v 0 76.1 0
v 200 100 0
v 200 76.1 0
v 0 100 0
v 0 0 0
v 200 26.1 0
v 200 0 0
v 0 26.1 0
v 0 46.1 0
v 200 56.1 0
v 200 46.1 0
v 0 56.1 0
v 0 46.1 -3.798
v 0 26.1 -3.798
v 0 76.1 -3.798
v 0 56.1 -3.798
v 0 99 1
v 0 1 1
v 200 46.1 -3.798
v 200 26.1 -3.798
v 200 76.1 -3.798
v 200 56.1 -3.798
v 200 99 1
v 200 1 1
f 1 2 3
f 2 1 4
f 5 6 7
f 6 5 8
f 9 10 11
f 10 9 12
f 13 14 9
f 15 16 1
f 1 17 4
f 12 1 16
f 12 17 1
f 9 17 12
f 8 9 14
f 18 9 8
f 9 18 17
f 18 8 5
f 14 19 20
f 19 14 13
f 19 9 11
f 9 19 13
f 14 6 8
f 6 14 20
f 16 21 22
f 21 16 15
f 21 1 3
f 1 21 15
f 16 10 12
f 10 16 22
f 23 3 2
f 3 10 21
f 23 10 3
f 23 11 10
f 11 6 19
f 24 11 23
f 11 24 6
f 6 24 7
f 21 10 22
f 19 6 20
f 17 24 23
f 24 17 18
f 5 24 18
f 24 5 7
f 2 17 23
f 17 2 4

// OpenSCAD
//
// ktWASHITSU1
//
//

gap1 = 0.002;
gap2 = 0.004;
th = 2;

uh=20.5;


unit();








module gawa()
{
difference()
{
    union()
    {
        color("NavajoWhite")translate([0, 0, -10]) cube([800, 100, 10]);
    }
    translate([-gap1, 25.6+0.5, -3.8+gap1]) cube([800+gap2, 21-1, 3.8]);
    translate([-gap1, 25.6+21+9+0.5, -3.8+gap1]) cube([800+gap2, 21-1, 3.8]);
}
}


module unit()
{
difference()
{
    union()
    {
        translate([0, 0, -3.8]) cube([200, 100, 3.8+1]);
    }
    #gawa();

    #translate([0, 0, 0]) rotate([90-45, 0, 0]) cube([200, 5, 5]);
    #translate([0, 100, 0]) rotate([45, 0, 0]) cube([200, 5, 5]);

}
}
